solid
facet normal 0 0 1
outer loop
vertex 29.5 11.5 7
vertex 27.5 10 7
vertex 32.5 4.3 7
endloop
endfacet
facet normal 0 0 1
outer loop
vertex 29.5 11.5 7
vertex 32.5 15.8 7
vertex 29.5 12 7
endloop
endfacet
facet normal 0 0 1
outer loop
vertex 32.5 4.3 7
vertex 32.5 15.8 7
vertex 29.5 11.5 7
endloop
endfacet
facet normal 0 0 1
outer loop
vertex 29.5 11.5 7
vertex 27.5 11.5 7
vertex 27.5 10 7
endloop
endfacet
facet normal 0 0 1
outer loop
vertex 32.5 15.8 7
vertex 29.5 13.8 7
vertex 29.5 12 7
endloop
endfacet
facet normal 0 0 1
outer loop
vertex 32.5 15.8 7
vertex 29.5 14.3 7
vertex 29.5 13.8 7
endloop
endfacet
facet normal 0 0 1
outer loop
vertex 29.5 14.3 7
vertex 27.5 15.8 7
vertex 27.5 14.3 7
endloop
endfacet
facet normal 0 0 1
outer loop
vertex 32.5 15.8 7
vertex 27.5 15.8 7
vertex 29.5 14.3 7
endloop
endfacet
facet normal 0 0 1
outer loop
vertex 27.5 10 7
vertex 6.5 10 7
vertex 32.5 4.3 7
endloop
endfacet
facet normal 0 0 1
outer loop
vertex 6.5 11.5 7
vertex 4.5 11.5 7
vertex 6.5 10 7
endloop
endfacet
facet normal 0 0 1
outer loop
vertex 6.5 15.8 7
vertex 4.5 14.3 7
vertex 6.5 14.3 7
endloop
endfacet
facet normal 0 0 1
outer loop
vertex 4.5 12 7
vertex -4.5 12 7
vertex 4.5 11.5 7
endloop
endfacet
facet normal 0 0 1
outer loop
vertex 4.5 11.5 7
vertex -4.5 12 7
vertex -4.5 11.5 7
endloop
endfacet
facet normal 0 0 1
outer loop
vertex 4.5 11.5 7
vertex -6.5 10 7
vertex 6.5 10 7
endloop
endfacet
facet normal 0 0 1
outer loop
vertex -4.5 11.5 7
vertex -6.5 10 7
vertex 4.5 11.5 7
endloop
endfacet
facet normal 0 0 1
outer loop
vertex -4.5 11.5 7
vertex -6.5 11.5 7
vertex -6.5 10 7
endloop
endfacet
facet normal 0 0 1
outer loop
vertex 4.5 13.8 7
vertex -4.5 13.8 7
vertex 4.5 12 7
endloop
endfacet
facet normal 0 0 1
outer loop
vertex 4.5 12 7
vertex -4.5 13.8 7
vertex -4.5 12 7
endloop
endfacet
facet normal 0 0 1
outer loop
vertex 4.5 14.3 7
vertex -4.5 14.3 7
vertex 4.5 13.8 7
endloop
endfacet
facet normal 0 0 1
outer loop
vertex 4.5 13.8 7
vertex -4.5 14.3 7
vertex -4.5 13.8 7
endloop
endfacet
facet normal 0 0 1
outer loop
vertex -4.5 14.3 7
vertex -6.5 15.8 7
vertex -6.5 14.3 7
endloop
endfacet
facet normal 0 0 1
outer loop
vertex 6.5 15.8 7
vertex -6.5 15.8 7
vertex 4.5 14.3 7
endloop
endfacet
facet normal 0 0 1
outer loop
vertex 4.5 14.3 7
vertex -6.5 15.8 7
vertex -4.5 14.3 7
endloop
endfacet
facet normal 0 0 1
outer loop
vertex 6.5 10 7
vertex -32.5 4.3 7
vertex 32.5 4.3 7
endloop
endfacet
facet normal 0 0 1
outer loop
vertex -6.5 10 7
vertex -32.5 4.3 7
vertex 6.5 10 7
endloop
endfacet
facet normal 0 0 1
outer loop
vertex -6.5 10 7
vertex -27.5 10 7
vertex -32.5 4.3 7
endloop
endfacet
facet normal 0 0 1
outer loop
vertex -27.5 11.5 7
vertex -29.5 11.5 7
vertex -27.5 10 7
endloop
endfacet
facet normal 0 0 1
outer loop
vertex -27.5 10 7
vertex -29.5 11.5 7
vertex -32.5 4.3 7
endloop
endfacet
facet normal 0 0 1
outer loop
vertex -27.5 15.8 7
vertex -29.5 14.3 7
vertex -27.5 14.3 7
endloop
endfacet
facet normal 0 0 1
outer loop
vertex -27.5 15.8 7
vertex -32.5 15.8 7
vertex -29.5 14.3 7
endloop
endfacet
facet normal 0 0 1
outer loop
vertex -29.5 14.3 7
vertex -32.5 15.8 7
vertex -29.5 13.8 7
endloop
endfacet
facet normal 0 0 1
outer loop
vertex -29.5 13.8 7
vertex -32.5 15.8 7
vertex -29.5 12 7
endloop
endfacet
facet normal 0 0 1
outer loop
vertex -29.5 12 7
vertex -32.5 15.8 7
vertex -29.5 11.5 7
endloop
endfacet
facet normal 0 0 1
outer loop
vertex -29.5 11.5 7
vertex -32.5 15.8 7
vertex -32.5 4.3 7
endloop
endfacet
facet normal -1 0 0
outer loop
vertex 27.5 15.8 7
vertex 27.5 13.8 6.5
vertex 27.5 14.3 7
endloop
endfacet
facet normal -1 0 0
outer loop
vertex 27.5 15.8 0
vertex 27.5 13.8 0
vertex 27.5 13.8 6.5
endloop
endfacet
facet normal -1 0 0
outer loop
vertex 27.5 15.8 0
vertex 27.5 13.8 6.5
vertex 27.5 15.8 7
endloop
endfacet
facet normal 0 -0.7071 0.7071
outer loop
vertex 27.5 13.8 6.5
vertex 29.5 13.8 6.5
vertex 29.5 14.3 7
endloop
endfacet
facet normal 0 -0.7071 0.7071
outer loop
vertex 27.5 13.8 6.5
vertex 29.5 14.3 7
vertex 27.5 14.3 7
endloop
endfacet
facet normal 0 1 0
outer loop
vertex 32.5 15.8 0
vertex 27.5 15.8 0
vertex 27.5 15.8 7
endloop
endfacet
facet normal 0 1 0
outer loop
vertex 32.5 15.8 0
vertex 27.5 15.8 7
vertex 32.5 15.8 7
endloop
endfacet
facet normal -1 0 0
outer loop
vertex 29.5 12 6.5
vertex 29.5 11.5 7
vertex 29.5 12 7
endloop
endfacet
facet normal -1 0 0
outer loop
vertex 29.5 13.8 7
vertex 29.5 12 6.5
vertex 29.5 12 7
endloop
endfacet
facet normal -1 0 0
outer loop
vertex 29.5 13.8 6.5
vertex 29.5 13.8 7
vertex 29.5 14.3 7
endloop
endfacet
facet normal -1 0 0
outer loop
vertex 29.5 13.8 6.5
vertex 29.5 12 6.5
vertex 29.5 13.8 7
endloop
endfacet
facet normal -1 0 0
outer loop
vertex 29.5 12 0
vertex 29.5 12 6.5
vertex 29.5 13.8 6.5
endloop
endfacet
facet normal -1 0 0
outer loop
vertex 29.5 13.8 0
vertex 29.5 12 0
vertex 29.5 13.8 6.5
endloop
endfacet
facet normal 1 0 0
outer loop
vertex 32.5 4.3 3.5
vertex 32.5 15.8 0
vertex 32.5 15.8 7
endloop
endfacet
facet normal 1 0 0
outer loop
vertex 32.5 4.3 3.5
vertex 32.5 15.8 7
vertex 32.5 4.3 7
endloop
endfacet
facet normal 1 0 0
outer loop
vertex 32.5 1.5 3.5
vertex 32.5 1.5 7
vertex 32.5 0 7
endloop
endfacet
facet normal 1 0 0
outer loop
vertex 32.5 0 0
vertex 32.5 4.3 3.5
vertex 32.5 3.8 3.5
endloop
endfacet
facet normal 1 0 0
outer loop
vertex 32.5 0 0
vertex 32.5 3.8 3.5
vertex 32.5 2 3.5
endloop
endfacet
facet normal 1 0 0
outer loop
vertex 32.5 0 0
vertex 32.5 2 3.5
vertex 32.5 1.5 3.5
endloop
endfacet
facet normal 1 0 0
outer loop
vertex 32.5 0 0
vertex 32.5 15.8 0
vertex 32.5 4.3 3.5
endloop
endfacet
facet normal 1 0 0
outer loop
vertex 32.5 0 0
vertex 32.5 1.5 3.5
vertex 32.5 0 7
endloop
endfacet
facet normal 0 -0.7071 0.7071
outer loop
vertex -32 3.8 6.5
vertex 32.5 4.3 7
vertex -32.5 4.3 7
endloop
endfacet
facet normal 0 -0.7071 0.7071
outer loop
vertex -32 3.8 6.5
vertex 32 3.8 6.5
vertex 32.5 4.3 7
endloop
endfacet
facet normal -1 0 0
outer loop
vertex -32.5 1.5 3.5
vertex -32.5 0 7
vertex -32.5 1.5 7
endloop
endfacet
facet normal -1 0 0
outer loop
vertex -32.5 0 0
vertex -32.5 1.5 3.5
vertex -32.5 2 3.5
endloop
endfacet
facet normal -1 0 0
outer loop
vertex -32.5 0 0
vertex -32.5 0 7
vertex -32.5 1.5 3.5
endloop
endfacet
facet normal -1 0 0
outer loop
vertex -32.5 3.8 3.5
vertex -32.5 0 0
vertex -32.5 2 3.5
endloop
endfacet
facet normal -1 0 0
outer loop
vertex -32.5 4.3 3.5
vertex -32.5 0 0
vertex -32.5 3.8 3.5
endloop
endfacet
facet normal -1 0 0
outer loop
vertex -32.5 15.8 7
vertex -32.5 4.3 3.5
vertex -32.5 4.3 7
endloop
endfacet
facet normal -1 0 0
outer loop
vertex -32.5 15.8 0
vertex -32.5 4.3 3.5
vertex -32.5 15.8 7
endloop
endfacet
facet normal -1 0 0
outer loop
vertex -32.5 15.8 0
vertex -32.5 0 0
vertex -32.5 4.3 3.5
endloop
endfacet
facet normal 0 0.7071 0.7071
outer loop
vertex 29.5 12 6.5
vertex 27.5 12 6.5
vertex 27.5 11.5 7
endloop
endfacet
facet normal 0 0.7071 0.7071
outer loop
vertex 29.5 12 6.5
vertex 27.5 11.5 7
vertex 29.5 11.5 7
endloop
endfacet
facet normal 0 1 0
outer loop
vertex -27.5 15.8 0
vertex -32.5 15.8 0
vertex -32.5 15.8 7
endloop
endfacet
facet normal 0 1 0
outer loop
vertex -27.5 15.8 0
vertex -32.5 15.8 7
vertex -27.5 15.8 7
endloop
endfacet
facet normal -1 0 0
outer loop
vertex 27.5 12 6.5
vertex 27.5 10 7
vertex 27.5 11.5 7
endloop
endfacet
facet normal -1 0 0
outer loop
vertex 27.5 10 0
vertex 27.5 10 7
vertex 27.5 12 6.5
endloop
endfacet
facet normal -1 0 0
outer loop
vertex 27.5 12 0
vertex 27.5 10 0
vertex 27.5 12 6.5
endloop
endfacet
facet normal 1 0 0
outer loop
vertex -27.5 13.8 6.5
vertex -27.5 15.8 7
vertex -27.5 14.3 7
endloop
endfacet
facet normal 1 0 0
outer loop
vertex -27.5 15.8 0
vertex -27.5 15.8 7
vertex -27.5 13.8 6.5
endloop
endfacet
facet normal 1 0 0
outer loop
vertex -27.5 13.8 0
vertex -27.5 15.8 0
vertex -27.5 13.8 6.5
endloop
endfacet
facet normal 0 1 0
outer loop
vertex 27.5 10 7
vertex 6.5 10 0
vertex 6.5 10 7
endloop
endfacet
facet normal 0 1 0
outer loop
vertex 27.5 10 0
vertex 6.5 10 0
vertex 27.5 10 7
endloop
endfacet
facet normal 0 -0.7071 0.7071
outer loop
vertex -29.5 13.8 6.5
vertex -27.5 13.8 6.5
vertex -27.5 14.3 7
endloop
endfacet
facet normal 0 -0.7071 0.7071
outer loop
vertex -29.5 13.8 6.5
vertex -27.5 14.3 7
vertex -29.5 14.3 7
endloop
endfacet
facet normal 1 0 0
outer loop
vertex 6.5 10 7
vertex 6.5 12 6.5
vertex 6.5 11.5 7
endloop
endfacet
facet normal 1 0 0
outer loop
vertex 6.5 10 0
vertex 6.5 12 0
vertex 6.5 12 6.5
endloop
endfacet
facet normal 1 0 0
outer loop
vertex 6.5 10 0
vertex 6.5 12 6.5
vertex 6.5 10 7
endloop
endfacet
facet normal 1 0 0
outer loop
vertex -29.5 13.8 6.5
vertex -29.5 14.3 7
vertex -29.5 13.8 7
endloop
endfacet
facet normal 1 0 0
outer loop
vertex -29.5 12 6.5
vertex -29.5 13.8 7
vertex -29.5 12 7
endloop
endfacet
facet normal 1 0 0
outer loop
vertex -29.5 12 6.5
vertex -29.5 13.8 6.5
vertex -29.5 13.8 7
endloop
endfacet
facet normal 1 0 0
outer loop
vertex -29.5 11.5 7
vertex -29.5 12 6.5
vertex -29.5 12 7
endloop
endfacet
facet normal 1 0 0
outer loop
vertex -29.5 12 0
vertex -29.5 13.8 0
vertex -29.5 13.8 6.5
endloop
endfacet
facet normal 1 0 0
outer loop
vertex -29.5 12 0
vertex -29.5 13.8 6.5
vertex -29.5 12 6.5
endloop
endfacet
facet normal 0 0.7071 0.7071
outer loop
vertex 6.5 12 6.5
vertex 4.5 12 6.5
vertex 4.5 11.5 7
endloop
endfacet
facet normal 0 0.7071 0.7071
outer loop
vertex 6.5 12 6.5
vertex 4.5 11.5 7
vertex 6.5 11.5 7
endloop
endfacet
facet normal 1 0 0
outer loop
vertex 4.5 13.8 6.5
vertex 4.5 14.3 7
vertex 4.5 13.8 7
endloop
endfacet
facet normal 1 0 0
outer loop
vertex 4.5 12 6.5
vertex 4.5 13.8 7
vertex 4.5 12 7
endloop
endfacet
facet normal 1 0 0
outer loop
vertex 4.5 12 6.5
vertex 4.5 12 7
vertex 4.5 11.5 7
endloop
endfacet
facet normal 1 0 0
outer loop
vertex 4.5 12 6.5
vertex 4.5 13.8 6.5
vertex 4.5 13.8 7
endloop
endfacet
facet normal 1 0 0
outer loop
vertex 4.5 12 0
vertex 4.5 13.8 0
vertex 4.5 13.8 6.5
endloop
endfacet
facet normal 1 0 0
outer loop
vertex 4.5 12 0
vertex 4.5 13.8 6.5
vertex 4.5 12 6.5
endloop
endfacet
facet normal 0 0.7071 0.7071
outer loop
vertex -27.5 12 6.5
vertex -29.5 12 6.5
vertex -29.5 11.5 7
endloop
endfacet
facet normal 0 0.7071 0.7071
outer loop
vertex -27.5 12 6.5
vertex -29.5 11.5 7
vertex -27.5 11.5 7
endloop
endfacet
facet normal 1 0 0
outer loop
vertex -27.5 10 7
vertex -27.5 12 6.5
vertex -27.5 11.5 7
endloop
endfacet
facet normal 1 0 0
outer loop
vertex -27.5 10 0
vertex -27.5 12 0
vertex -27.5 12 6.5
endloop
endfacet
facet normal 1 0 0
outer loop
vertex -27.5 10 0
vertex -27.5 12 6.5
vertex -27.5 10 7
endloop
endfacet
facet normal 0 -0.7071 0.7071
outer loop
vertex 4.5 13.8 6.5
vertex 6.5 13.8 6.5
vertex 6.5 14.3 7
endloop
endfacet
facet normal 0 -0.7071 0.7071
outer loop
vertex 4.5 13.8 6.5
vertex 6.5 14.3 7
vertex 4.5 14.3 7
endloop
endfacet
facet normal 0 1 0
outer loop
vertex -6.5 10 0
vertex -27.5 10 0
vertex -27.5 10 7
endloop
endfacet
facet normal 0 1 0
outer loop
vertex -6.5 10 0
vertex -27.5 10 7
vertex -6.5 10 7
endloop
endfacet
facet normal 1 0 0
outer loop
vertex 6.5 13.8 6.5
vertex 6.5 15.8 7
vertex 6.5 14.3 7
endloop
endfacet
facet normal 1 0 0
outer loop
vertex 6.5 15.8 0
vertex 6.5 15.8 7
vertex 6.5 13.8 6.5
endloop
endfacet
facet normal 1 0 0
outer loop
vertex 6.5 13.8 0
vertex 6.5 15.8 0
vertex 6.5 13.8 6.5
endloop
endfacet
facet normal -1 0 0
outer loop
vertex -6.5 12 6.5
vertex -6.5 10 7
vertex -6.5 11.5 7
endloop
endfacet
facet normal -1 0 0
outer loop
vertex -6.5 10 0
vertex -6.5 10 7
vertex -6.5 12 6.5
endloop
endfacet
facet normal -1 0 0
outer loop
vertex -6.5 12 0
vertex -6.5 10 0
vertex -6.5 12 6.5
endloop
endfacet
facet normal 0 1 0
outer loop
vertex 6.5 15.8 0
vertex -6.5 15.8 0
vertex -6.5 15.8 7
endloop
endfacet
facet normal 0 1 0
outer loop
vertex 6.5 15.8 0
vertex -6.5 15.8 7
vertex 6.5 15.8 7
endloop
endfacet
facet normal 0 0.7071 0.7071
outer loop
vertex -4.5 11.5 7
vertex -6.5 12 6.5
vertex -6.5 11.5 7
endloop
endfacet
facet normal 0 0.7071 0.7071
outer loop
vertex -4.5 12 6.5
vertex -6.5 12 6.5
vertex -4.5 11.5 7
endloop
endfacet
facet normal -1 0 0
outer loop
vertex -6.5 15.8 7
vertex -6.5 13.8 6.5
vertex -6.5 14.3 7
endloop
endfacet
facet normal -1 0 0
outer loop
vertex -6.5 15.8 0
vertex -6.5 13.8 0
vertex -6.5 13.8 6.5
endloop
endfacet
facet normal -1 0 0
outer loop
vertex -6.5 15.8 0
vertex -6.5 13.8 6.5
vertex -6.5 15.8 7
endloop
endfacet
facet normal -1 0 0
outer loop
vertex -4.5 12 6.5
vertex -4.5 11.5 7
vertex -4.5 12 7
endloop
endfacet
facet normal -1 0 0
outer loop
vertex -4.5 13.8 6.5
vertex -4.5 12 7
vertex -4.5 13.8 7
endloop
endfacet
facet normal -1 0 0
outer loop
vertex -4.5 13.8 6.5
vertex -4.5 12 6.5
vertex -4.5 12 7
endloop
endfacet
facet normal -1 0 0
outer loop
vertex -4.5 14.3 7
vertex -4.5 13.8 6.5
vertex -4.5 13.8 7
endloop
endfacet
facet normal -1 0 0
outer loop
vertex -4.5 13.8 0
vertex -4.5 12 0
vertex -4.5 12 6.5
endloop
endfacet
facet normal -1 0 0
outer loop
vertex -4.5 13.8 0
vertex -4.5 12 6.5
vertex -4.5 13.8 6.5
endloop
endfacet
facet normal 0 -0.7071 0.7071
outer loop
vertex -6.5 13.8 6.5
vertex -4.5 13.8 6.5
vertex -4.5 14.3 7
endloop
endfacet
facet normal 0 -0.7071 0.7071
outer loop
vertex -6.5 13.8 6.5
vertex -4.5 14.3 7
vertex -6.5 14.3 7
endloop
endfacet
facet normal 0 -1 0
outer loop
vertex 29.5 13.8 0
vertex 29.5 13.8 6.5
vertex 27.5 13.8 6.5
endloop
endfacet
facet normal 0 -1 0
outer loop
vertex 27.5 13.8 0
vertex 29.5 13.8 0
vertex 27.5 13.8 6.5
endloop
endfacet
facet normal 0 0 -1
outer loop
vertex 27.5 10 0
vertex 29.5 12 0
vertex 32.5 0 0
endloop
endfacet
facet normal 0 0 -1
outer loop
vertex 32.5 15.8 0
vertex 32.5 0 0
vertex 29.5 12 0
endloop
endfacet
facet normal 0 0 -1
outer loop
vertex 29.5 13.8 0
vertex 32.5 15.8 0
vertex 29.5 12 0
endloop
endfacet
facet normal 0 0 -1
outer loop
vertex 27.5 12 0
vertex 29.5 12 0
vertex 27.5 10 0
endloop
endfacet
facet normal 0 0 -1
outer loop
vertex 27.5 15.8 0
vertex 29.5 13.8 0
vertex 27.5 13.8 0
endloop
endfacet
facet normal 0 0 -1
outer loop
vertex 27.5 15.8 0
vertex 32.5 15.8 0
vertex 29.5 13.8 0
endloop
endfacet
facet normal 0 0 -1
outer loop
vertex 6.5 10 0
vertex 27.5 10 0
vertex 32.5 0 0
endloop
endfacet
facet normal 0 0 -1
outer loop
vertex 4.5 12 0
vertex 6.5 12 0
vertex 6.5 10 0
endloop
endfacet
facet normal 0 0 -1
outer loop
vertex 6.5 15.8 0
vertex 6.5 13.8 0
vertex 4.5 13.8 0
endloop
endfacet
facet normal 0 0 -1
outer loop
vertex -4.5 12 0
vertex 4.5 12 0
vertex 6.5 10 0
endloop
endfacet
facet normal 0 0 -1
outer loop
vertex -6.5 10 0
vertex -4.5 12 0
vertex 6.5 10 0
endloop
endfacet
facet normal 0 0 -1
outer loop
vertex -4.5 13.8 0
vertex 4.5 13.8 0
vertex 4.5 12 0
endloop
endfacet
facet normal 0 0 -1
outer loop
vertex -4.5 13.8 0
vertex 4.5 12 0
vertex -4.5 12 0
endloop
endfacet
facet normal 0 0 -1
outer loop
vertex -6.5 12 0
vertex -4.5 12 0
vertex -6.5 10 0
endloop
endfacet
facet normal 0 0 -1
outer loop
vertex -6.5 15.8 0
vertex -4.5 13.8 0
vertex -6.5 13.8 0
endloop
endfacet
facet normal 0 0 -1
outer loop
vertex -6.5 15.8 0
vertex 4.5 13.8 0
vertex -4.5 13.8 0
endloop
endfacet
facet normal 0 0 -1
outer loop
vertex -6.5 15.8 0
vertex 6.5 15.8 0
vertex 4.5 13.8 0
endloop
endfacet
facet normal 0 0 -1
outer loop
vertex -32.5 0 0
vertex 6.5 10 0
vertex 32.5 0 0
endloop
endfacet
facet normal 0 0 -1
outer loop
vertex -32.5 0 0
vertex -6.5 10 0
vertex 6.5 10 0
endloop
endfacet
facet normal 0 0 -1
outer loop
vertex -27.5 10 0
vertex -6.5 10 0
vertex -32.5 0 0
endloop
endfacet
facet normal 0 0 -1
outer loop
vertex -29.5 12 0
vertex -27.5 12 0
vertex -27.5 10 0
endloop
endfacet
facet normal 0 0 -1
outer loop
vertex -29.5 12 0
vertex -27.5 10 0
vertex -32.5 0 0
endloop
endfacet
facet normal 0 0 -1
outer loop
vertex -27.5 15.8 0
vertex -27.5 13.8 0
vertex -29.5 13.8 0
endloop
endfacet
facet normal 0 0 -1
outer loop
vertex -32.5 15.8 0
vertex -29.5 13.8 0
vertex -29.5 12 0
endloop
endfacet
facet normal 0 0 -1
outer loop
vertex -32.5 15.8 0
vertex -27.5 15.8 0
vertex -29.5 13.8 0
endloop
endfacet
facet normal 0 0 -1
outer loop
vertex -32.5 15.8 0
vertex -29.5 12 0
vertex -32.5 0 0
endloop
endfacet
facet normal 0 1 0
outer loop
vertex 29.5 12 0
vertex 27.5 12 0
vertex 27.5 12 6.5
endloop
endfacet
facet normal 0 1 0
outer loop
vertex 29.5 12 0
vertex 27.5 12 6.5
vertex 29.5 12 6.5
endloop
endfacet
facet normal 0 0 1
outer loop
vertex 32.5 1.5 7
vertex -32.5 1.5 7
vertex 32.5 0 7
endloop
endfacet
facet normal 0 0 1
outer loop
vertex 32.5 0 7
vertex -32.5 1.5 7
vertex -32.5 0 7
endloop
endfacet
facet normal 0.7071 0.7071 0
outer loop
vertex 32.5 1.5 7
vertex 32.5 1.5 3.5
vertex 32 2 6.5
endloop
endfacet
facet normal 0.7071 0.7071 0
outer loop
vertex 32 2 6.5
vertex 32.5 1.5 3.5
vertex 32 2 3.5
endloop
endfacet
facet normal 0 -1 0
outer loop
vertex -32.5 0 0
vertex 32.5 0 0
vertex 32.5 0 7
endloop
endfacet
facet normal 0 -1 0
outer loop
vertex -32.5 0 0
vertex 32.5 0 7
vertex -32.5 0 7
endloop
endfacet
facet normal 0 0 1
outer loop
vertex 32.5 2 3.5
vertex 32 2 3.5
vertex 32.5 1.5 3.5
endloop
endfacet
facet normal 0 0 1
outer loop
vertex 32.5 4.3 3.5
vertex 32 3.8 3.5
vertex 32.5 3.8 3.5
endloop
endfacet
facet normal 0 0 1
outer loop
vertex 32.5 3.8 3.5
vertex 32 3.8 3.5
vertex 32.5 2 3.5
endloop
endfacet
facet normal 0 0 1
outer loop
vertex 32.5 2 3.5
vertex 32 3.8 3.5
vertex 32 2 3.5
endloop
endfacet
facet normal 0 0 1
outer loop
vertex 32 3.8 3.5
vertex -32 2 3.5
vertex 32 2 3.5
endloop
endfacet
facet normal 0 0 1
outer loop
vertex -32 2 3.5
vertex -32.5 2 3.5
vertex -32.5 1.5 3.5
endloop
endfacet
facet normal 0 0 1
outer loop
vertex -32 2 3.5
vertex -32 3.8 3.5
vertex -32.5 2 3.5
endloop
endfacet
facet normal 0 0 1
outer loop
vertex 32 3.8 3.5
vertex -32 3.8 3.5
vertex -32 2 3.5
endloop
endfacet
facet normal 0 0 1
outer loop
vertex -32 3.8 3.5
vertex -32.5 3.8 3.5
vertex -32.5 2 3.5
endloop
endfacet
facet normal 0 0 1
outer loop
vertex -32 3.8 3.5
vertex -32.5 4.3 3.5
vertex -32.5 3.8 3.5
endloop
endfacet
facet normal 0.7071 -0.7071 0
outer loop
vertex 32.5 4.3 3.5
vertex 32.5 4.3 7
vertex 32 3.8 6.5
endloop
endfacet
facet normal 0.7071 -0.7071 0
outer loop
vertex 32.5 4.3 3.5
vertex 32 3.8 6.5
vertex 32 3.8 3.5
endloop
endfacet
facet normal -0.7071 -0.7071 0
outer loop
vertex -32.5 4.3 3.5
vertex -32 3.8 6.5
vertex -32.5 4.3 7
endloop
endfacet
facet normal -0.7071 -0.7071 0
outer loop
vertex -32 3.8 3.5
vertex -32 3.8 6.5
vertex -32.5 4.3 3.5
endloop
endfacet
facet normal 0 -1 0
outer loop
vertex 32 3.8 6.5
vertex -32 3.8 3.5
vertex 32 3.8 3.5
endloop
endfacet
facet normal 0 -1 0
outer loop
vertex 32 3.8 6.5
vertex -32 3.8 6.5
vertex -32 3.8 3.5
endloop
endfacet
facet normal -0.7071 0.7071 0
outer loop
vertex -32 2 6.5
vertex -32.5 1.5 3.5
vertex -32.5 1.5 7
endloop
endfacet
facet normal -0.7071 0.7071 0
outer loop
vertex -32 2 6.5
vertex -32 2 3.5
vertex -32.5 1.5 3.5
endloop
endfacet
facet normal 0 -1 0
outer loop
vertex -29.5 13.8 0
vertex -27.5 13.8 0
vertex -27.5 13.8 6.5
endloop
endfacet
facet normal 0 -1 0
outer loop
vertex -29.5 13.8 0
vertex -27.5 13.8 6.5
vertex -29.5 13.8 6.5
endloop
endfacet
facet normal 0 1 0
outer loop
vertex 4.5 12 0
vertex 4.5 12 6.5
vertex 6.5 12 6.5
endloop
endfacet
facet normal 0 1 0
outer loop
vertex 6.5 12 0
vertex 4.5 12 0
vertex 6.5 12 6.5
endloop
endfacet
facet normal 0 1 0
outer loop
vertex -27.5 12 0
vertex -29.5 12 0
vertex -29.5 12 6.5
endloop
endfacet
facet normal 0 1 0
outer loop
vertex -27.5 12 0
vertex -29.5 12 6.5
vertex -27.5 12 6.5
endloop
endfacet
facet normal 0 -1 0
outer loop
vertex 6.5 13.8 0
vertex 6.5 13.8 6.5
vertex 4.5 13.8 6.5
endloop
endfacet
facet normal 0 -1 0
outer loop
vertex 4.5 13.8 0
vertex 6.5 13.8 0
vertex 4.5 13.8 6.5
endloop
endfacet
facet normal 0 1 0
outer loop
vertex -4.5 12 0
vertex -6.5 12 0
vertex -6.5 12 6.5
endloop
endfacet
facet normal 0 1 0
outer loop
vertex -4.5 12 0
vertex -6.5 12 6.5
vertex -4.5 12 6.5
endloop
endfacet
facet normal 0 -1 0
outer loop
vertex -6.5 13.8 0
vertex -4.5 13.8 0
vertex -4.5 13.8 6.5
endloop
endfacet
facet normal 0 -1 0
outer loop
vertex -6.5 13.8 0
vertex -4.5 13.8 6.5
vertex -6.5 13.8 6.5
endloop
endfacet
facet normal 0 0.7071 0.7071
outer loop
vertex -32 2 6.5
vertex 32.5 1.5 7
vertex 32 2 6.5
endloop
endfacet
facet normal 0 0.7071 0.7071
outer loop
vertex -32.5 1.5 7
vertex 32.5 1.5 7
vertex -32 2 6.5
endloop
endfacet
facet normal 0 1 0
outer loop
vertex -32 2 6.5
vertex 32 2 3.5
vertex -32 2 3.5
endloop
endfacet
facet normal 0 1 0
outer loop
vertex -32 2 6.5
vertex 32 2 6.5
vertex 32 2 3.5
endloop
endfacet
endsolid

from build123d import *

# Parameters (mm, degrees)
PAD_DEPTH       = 7
SKETCH001_W     = 65
SKETCH001_H     = 1.8
POCKET_DEPTH    = 3.5
CHAMFER_SIZE    = 0.5
CHAMFER001_SIZE = 0.5


with BuildPart() as part:
    # Sketch → Pad (new body)
    with BuildSketch(Plane.XY):
        Polygon((-32.5, 0), (-32.5, 15.8), (-27.5, 15.8), (-27.5, 13.8), (-29.5, 13.8), (-29.5, 12), (-27.5, 12), (-27.5, 10), (-6.5, 10), (-6.5, 12), (-4.5, 12), (-4.5, 13.8), (-6.5, 13.8), (-6.5, 15.8), (6.5, 15.8), (6.5, 13.8), (4.5, 13.8), (4.5, 12), (6.5, 12), (6.5, 10), (27.5, 10), (27.5, 12), (29.5, 12), (29.5, 13.8), (27.5, 13.8), (27.5, 15.8), (32.5, 15.8), (32.5, 0), align=None)
    extrude(amount=PAD_DEPTH)

    # Sketch001 → Pocket (cut)
    with BuildSketch(Plane.XY.offset(7)):
        with Locations((0, 2.9)):
            Rectangle(SKETCH001_W, SKETCH001_H)
    extrude(amount=-POCKET_DEPTH, mode=Mode.SUBTRACT)

    # Chamfer
    chamfer_edges = [part.edges().sort_by_distance(p)[0] for p in [
        (0, 2, 7),
        (0, 3.8, 7),
        (-32.5, 2, 5.25),
        (-32.5, 3.8, 5.25),
        (32.5, 2, 5.25),
        (32.5, 3.8, 5.25),
    ]]
    chamfer(chamfer_edges, length=CHAMFER_SIZE)

    # Chamfer001
    chamfer001_edges = [part.edges().sort_by_distance(p)[0] for p in [
        (-28.5, 12, 7),
        (-28.5, 13.8, 7),
        (-5.5, 12, 7),
        (-5.5, 13.8, 7),
        (5.5, 12, 7),
        (5.5, 13.8, 7),
        (28.5, 12, 7),
        (28.5, 13.8, 7),
    ]]
    chamfer(chamfer001_edges, length=CHAMFER001_SIZE)


solid = part.part
